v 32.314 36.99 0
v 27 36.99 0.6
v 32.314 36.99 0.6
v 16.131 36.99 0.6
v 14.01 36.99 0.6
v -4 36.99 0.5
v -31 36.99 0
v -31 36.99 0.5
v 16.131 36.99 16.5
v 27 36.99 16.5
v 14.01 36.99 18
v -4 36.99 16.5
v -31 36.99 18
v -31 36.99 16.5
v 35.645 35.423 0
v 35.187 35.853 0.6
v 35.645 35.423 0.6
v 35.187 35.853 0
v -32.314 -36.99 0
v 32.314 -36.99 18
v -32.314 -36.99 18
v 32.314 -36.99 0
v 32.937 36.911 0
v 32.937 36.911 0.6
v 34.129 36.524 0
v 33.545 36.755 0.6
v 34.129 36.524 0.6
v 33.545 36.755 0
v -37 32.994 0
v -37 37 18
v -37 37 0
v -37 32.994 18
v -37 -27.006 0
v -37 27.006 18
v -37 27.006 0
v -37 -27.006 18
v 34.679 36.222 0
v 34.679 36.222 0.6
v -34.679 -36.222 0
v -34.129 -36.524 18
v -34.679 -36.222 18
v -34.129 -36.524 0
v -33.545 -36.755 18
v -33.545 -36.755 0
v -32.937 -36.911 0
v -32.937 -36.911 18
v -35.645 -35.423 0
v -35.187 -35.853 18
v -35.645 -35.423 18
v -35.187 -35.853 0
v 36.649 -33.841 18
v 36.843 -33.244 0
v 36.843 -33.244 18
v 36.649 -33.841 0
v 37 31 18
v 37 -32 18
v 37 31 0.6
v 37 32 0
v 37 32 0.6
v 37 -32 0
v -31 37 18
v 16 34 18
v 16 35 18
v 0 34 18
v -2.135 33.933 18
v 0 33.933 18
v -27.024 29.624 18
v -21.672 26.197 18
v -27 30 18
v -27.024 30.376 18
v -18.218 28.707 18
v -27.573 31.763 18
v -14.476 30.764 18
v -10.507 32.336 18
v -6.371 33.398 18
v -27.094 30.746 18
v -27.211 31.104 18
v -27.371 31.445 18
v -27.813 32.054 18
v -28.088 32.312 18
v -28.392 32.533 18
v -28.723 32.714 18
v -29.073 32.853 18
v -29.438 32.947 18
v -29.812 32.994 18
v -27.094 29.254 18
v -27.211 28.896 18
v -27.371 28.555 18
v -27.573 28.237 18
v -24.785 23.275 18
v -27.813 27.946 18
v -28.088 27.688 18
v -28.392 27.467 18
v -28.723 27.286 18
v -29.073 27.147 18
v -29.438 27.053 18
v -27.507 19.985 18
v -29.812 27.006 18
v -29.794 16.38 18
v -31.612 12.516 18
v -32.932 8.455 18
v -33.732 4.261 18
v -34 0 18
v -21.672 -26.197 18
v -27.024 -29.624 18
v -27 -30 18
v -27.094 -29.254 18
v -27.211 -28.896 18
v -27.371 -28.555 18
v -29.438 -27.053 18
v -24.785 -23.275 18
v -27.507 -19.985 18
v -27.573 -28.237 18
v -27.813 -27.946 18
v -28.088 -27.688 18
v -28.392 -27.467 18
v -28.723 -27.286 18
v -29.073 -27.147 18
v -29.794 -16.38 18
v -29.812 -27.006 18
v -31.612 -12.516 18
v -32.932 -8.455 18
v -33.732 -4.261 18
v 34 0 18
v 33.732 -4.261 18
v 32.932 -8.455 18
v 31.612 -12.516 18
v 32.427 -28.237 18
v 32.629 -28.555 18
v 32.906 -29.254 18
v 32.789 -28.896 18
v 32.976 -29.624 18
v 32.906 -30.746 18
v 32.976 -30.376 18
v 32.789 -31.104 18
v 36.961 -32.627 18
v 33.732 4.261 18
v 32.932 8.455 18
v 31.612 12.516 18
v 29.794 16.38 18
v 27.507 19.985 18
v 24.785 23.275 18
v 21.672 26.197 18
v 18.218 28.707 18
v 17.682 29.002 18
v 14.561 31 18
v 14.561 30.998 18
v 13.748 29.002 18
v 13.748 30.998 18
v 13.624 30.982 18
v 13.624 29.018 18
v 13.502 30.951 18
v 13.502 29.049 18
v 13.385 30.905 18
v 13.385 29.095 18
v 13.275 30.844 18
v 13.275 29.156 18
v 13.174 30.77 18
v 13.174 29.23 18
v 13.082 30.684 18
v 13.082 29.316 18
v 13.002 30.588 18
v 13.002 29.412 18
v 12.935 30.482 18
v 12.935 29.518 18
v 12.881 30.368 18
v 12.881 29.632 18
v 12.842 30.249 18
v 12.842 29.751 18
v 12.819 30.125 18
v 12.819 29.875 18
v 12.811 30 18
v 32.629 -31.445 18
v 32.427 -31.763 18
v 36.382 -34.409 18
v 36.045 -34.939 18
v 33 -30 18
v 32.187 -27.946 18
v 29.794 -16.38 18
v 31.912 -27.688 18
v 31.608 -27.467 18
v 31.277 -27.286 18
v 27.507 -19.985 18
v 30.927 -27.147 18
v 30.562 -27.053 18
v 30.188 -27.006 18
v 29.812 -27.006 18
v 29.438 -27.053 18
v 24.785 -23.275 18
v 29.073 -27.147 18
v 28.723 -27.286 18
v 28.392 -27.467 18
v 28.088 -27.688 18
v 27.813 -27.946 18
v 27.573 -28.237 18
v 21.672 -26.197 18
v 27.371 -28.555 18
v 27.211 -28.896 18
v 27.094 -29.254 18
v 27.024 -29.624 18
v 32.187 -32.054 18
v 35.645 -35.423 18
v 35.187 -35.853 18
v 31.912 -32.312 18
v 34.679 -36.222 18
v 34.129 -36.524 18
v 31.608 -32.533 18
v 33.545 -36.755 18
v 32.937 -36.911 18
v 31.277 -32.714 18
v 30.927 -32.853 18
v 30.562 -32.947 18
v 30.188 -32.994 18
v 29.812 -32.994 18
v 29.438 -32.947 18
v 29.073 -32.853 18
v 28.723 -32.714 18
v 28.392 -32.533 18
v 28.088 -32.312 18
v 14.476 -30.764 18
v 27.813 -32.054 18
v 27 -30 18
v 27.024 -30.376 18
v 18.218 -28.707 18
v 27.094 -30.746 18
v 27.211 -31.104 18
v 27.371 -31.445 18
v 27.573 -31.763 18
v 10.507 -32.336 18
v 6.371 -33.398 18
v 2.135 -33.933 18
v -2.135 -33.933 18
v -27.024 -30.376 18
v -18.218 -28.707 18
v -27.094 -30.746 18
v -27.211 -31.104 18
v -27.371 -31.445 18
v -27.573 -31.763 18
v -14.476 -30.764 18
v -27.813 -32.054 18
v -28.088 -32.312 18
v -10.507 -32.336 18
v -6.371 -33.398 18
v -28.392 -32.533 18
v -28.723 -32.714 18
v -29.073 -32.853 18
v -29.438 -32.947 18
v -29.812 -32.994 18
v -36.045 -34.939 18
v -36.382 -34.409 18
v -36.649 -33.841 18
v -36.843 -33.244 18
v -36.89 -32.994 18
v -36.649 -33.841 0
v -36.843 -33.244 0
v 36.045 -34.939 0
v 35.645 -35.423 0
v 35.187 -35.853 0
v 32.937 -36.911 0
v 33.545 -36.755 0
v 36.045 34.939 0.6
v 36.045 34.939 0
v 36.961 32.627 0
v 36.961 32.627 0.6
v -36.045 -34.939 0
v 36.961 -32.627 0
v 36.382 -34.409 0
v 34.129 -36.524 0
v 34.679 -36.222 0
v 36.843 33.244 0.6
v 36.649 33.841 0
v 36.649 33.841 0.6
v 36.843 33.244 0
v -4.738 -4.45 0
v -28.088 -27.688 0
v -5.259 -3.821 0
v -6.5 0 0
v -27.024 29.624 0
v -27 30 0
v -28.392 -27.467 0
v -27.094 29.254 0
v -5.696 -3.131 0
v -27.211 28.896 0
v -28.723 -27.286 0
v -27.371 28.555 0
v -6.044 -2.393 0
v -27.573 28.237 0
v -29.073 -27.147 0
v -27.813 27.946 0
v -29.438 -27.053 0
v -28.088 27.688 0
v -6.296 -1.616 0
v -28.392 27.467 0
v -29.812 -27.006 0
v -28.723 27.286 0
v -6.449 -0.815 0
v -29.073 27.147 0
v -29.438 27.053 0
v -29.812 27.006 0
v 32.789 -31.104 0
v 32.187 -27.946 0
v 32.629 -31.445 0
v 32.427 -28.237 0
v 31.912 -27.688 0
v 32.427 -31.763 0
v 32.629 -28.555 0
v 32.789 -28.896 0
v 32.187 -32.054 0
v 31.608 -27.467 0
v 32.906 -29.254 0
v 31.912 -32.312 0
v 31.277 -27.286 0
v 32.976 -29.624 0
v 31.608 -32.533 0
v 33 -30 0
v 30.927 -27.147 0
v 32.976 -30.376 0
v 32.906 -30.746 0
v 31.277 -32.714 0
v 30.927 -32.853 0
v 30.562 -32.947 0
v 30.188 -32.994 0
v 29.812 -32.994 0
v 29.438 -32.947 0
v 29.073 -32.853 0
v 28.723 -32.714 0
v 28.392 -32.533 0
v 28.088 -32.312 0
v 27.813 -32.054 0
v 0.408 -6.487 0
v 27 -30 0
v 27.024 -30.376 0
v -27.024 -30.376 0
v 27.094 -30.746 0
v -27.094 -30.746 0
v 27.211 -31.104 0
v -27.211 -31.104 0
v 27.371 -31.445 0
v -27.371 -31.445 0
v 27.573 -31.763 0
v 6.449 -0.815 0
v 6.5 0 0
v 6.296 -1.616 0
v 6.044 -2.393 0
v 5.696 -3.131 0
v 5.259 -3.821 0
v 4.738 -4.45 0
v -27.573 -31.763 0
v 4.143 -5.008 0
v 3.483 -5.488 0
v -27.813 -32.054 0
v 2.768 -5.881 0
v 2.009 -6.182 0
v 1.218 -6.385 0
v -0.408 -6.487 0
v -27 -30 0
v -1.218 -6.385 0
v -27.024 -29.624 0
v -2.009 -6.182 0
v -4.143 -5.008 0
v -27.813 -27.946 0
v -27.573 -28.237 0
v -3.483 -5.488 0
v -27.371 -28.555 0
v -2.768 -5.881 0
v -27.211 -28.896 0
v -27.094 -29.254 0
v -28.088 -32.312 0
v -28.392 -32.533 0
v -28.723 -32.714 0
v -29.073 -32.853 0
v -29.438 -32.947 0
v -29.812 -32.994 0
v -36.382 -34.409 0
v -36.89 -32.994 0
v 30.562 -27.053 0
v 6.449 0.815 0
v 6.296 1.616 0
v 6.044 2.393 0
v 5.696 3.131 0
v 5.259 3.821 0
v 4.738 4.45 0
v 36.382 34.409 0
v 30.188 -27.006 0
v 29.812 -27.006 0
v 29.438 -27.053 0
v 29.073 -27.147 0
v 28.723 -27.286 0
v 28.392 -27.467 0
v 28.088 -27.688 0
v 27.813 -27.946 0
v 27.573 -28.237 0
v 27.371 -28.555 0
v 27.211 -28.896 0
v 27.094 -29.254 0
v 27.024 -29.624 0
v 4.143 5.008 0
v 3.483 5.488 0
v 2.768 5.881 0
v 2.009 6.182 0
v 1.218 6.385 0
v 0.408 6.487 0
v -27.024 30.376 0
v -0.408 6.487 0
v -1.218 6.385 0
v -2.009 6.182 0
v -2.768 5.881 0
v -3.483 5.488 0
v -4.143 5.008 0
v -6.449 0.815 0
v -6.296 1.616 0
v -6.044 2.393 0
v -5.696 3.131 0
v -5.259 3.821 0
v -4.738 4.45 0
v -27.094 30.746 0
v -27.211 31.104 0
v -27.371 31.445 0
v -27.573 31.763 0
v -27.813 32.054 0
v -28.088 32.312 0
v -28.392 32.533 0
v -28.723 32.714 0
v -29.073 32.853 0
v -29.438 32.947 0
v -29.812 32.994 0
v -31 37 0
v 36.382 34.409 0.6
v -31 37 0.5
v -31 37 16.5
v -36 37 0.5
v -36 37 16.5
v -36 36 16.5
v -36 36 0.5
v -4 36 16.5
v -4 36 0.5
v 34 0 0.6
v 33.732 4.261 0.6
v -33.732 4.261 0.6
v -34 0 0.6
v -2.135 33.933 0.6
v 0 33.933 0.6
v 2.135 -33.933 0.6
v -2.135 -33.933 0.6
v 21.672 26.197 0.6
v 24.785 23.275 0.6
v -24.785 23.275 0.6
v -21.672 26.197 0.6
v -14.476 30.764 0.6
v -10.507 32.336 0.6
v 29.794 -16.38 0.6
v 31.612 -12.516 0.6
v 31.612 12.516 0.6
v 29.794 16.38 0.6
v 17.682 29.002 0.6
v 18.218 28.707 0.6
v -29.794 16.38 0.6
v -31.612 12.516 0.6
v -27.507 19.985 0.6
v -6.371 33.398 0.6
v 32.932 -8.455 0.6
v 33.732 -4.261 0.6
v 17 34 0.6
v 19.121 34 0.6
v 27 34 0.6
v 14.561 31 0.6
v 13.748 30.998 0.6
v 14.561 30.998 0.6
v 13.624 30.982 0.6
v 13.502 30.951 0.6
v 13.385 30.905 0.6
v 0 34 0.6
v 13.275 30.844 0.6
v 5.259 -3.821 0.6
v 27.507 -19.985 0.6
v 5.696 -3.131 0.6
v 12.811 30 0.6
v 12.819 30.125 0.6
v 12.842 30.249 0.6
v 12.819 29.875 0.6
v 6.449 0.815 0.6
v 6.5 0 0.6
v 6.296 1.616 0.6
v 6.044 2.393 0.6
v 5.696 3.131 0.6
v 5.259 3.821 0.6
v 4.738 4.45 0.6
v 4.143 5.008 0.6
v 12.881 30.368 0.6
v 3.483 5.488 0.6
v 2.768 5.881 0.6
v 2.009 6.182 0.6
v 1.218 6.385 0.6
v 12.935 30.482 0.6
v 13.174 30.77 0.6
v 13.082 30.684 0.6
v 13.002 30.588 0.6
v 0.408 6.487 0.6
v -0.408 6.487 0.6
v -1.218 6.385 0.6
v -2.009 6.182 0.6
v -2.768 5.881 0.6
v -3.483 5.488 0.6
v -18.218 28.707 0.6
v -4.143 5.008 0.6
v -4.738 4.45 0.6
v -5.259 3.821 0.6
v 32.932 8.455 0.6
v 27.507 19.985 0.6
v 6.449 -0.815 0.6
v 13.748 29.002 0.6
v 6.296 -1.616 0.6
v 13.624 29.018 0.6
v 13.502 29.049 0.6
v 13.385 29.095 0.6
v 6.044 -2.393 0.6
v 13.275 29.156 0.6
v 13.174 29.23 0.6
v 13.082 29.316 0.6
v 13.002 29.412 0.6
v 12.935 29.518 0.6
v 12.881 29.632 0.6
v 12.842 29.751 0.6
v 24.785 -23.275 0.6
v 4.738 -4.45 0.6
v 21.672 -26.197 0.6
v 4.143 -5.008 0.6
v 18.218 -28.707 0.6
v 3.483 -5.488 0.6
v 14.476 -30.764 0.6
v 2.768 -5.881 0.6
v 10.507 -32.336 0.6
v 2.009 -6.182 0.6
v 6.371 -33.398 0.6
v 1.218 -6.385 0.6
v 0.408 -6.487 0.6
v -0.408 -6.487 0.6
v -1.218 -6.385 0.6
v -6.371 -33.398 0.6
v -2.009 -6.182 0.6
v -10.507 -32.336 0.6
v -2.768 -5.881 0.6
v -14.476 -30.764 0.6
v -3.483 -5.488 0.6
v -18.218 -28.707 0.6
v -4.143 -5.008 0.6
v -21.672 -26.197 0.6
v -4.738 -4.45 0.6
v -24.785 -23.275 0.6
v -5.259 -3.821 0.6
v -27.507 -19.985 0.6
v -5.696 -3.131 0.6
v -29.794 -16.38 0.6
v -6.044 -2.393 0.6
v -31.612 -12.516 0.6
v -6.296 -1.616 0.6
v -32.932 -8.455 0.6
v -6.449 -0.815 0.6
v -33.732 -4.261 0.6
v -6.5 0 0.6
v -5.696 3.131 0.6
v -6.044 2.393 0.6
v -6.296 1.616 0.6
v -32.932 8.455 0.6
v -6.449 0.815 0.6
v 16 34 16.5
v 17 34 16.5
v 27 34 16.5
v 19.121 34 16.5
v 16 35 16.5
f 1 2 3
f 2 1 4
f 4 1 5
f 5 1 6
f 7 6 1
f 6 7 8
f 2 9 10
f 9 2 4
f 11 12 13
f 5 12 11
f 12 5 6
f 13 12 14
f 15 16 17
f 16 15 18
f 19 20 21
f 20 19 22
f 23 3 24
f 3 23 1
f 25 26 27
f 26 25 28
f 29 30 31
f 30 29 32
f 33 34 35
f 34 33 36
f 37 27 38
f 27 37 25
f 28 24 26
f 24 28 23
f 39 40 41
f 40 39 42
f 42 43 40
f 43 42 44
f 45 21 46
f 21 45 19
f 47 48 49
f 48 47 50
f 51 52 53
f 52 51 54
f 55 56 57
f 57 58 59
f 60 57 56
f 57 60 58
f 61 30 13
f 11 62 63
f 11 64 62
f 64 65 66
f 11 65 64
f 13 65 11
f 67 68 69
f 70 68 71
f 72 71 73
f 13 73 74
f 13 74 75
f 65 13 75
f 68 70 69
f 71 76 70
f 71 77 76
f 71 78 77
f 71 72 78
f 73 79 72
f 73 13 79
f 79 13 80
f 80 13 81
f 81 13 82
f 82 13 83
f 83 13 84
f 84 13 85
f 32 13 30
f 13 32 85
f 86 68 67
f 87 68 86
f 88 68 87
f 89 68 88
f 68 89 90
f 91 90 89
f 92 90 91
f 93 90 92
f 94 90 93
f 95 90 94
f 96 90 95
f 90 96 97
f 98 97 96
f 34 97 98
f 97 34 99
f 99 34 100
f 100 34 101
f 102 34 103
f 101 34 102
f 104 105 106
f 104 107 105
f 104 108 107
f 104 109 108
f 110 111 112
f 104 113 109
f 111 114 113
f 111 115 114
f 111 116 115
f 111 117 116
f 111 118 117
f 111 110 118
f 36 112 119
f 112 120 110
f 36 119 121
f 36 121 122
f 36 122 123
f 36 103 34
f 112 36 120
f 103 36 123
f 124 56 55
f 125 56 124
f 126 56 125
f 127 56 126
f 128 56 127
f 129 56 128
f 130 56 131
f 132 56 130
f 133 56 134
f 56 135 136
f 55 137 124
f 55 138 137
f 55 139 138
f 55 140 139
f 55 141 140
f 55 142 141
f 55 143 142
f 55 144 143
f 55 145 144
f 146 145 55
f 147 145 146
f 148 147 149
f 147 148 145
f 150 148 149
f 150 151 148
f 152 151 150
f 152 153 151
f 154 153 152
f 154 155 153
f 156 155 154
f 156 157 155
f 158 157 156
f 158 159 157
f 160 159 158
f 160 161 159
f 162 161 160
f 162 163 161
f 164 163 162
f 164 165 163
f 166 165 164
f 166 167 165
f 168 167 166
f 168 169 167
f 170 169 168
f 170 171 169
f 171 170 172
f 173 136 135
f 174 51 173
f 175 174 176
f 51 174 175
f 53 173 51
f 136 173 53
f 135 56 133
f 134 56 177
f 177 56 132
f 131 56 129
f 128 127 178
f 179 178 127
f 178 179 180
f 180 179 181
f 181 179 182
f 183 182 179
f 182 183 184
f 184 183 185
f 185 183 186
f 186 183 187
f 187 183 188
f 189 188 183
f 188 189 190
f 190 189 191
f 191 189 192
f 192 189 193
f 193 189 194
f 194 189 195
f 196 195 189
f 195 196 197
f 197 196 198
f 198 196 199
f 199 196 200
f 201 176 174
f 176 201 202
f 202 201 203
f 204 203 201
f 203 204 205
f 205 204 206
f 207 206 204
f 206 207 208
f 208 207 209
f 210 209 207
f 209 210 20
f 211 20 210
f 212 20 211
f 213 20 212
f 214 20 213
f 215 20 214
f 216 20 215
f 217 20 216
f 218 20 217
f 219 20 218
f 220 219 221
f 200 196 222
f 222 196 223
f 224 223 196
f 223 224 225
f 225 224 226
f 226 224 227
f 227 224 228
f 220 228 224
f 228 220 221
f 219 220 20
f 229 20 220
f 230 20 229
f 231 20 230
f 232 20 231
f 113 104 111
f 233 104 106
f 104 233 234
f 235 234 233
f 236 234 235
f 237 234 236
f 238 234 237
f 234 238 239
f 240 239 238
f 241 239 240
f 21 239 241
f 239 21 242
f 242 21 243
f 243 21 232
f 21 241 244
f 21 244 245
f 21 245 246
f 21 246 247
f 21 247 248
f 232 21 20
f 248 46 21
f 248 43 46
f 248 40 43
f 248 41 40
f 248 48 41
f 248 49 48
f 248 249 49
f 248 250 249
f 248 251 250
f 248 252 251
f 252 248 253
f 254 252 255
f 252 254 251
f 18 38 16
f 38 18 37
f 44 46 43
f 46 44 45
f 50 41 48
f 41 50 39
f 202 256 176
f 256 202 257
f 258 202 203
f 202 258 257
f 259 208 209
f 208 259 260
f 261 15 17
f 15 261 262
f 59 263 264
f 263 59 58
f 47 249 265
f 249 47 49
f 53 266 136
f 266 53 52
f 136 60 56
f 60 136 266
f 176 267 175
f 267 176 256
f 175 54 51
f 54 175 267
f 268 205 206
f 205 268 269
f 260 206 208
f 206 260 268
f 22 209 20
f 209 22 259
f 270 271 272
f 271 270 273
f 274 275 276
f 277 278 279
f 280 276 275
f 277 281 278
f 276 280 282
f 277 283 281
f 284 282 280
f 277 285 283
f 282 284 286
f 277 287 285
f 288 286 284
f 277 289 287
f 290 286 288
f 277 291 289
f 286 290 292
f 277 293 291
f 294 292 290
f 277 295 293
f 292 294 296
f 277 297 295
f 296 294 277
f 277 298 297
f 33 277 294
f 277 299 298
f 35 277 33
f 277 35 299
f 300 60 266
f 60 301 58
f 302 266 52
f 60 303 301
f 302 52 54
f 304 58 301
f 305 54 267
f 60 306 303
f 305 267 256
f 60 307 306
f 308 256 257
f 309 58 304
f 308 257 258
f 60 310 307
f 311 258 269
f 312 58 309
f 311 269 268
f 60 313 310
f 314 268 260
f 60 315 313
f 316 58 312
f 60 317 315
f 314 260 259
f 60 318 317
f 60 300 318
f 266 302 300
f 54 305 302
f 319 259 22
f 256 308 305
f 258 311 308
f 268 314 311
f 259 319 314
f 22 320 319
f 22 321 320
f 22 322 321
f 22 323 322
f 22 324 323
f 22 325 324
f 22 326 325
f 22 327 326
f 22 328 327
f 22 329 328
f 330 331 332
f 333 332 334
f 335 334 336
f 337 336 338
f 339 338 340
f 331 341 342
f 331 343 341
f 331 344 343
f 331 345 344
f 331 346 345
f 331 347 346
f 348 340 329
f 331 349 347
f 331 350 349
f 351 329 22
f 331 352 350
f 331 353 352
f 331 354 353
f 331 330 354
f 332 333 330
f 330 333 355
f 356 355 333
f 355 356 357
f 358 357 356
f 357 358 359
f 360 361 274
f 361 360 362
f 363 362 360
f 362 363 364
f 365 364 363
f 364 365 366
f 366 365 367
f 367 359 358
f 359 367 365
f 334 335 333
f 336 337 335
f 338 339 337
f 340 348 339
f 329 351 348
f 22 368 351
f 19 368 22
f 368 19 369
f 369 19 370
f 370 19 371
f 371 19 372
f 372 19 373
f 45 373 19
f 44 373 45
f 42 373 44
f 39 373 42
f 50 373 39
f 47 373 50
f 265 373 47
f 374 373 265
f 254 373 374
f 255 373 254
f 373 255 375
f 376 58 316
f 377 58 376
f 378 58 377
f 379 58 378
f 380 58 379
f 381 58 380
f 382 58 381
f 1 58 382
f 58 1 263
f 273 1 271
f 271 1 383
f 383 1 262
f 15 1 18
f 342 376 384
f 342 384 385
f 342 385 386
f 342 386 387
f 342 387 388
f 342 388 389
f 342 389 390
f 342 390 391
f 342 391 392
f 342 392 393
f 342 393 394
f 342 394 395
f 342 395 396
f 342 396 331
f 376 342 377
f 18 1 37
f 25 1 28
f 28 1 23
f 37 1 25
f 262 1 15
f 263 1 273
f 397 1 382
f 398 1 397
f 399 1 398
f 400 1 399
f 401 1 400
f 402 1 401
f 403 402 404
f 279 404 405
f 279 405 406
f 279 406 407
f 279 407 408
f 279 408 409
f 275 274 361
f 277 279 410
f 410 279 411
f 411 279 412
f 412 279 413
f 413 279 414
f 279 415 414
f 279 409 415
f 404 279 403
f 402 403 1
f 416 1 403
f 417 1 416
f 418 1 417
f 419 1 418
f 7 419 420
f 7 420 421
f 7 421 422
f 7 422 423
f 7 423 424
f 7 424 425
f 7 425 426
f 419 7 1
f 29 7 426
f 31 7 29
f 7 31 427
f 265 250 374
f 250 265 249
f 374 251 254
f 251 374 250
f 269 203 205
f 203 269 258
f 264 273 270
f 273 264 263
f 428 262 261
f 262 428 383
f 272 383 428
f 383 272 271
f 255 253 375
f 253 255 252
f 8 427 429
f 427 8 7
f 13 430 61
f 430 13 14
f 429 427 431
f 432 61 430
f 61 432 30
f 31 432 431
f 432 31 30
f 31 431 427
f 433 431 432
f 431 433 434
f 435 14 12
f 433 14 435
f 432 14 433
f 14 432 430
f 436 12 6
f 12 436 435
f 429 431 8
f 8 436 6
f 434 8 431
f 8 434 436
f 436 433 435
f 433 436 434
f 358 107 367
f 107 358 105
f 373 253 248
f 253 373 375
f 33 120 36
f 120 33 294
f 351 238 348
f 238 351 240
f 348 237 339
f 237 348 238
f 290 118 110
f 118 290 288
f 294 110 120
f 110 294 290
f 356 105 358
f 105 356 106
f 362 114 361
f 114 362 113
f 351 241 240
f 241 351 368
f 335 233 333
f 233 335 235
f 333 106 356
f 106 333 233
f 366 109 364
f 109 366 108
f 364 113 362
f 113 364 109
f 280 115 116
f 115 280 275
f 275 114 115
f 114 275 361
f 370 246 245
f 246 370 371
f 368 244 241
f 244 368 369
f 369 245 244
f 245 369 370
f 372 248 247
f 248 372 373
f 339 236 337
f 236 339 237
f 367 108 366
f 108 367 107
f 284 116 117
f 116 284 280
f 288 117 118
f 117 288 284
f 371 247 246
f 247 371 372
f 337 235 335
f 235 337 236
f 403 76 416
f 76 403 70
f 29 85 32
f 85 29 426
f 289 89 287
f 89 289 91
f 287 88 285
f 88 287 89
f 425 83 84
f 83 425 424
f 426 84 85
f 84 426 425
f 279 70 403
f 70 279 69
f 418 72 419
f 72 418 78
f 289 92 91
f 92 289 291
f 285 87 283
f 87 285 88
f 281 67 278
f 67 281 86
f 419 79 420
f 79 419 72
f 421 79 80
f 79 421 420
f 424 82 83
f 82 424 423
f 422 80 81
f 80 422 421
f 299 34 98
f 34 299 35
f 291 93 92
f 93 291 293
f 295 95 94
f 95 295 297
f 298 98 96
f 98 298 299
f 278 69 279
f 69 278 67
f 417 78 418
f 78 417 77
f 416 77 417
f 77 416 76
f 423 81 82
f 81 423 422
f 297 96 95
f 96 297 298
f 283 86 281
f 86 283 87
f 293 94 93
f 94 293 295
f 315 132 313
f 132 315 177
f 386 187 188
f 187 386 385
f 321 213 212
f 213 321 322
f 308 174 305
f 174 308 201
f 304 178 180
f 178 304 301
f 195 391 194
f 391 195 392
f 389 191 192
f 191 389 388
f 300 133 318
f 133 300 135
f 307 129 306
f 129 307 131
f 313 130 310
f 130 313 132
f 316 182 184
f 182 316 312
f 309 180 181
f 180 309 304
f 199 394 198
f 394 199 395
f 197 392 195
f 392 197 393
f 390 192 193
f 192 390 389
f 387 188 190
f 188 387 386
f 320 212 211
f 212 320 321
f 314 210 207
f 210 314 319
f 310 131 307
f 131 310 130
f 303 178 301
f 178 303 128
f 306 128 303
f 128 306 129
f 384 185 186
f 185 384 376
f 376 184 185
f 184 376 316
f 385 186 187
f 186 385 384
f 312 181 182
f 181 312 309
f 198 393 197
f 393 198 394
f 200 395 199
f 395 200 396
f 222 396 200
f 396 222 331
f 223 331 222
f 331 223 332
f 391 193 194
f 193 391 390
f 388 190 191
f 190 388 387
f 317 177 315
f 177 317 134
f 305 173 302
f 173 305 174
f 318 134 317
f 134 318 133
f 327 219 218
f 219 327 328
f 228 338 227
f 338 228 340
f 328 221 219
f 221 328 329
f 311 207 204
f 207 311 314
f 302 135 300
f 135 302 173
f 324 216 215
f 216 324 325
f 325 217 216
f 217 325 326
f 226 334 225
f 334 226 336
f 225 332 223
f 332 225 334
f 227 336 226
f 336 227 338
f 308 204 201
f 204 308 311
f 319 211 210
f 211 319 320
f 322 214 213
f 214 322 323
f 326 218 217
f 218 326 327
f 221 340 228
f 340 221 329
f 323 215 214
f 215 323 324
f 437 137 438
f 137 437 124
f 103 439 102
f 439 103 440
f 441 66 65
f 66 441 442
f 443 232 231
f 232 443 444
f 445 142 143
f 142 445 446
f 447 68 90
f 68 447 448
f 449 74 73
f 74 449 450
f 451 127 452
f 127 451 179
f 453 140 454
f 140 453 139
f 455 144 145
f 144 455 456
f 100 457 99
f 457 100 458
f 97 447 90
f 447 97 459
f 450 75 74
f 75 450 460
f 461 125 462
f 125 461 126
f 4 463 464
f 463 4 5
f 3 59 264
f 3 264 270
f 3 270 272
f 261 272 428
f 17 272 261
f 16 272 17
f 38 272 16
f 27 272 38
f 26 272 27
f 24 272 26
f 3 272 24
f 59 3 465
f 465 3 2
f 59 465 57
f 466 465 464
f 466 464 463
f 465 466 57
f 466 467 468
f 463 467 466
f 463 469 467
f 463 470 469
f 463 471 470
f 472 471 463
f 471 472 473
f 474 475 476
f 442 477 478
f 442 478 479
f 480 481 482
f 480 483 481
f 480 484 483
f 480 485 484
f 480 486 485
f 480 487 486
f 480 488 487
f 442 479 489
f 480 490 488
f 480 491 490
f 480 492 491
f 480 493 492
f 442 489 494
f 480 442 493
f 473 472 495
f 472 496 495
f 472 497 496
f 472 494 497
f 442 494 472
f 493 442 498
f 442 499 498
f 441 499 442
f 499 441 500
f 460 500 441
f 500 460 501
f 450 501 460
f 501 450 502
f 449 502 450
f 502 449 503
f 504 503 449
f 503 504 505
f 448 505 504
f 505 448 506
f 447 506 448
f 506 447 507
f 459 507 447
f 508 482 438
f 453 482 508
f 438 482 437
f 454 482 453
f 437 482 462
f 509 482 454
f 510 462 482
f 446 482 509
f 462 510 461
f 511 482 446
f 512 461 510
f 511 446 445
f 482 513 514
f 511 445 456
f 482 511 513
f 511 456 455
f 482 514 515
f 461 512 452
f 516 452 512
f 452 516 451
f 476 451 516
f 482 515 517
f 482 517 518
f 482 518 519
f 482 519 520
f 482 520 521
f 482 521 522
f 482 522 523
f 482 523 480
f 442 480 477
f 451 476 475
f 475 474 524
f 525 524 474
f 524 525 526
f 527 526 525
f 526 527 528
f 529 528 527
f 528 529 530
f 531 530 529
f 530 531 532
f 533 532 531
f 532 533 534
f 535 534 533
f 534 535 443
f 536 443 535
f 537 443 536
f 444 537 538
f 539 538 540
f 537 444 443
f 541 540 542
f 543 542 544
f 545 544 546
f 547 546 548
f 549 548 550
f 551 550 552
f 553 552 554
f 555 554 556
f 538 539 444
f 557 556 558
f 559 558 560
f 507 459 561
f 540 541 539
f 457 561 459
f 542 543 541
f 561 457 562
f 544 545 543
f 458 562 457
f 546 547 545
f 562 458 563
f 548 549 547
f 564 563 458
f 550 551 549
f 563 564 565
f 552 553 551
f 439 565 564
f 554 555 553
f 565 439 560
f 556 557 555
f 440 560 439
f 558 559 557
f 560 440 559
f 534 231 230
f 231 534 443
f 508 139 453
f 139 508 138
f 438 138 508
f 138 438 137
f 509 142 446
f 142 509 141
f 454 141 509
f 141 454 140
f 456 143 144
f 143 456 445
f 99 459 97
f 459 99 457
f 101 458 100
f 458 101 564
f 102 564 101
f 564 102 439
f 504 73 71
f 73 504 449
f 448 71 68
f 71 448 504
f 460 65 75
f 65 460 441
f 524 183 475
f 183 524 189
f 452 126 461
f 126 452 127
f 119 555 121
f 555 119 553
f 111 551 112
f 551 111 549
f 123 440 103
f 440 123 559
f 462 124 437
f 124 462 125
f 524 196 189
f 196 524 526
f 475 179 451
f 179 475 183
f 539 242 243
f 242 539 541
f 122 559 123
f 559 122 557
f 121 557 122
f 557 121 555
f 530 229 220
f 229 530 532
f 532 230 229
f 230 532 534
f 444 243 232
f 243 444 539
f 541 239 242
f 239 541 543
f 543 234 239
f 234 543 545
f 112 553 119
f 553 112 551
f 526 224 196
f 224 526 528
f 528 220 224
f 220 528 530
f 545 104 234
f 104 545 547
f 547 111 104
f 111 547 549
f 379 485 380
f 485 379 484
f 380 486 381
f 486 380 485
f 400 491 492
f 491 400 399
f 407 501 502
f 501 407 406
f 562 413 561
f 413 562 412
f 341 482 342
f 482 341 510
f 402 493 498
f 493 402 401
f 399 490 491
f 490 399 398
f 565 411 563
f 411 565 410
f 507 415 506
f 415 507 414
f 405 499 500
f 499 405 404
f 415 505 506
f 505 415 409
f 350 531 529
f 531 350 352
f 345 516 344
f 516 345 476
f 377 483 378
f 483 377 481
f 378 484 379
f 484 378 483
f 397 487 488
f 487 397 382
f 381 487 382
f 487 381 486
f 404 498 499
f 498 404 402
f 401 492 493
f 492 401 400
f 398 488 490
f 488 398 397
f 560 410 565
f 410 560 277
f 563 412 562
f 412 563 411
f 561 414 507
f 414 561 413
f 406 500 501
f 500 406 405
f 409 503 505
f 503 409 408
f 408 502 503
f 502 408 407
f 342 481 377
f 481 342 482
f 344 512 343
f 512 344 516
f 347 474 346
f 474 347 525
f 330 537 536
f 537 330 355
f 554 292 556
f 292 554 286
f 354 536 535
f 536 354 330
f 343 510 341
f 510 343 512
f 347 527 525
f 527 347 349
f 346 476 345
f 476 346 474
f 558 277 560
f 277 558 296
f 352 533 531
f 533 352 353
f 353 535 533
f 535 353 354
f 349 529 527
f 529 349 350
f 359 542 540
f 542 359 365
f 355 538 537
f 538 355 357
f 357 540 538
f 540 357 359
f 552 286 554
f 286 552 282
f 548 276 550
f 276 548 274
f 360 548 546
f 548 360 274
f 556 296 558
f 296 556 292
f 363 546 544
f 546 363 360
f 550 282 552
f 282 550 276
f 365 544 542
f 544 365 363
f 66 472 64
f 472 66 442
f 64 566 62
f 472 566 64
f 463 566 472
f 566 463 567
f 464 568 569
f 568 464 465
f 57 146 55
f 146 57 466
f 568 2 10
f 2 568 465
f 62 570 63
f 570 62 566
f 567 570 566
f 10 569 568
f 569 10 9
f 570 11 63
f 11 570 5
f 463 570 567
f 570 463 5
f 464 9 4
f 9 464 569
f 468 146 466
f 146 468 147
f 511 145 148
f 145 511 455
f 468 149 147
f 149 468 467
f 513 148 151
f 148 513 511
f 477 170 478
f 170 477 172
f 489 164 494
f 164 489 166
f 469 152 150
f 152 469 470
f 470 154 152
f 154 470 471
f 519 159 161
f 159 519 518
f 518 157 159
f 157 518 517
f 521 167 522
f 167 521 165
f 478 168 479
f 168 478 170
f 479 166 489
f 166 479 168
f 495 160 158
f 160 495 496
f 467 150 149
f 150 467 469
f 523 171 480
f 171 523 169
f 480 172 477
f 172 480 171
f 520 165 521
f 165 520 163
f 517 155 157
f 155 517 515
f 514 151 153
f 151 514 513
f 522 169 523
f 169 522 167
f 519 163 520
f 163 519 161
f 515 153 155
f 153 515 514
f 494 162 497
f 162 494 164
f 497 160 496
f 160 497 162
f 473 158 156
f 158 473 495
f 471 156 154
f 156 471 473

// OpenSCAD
$fn = 50;


union() {
	difference() {
		union() {
			translate(v = [0, 0, 0]) {
				rotate(a = [0, 0, 0]) {
					hull() {
						translate(v = [-32.0000000000, 32.0000000000, 0]) {
							rotate(a = [0, 0, 0]) {
								translate(v = [0, 0, 0]) {
									rotate(a = [0, 0, 0]) {
										cylinder(h = 18, r = 5);
									}
								}
							}
						}
						translate(v = [32.0000000000, 32.0000000000, 0]) {
							rotate(a = [0, 0, 0]) {
								translate(v = [0, 0, 0]) {
									rotate(a = [0, 0, 0]) {
										cylinder(h = 18, r = 5);
									}
								}
							}
						}
						translate(v = [-32.0000000000, -32.0000000000, 0]) {
							rotate(a = [0, 0, 0]) {
								translate(v = [0, 0, 0]) {
									rotate(a = [0, 0, 0]) {
										cylinder(h = 18, r = 5);
									}
								}
							}
						}
						translate(v = [32.0000000000, -32.0000000000, 0]) {
							rotate(a = [0, 0, 0]) {
								translate(v = [0, 0, 0]) {
									rotate(a = [0, 0, 0]) {
										cylinder(h = 18, r = 5);
									}
								}
							}
						}
					}
				}
			}
			translate(v = [-37.0000000000, 31.0000000000, 0]) {
				rotate(a = [0, 0, 0]) {
					cube(size = [6, 6, 18]);
				}
			}
		}
		union() {
			#translate(v = [-36.0000000000, 36.0000000000, 0.5000000000]) {
				rotate(a = [0, 0, 0]) {
					cube(size = [32, 1, 16]);
				}
			}
			translate(v = [-37.5000000000, -30.0000000000, -125]) {
				rotate(a = [0, 0, 0]) {
					hull() {
						translate(v = [7.5000000000, 0, 0]) {
							rotate(a = [0, 0, 0]) {
								translate(v = [0, 0, 0]) {
									rotate(a = [0, 0, 0]) {
										cylinder(h = 250, r = 3.0000000000);
									}
								}
							}
						}
						translate(v = [-7.5000000000, 0, 0]) {
							rotate(a = [0, 0, 0]) {
								translate(v = [0, 0, 0]) {
									rotate(a = [0, 0, 0]) {
										cylinder(h = 250, r = 3.0000000000);
									}
								}
							}
						}
					}
				}
			}
			translate(v = [-37.5000000000, 30.0000000000, -125]) {
				rotate(a = [0, 0, 0]) {
					hull() {
						translate(v = [7.5000000000, 0, 0]) {
							rotate(a = [0, 0, 0]) {
								translate(v = [0, 0, 0]) {
									rotate(a = [0, 0, 0]) {
										cylinder(h = 250, r = 3.0000000000);
									}
								}
							}
						}
						translate(v = [-7.5000000000, 0, 0]) {
							rotate(a = [0, 0, 0]) {
								translate(v = [0, 0, 0]) {
									rotate(a = [0, 0, 0]) {
										cylinder(h = 250, r = 3.0000000000);
									}
								}
							}
						}
					}
				}
			}
			translate(v = [30.0000000000, -30.0000000000, -125.0000000000]) {
				rotate(a = [0, 0, 0]) {
					cylinder(h = 250, r = 3.0000000000);
				}
			}
			translate(v = [0, 0, 0.6000000000]) {
				rotate(a = [0, 0, 0]) {
					cylinder(h = 20.4000000000, r = 34.0000000000);
				}
			}
			translate(v = [0, 0, -9.0000000000]) {
				rotate(a = [0, 0, 0]) {
					cylinder(h = 18, r = 6.5000000000);
				}
			}
			translate(v = [0.0000000000, 31.0000000000, 0.6000000000]) {
				rotate(a = [0, 0, 0]) {
					cube(size = [37.0000000000, 3, 20.4000000000]);
				}
			}
			translate(v = [27.0000000000, 31.0000000000, 0.6000000000]) {
				rotate(a = [0, 0, 0]) {
					cube(size = [10, 6, 20.4000000000]);
				}
			}
			translate(v = [16.0000000000, 31.0000000000, 16.5000000000]) {
				rotate(a = [0, 0, 0]) {
					cube(size = [21, 6, 1.5000000000]);
				}
			}
			translate(v = [13.2500000000, 37.7500000000, 0.6000000000]) {
				rotate(a = [0, 0, -45]) {
					cube(size = [7.5000000000, 1.5000000000, 20.4000000000]);
				}
			}
			translate(v = [7.0610000000, 29.0000000000, 0.6000000000]) {
				rotate(a = [0, 0, 0]) {
					cube(size = [7.5000000000, 2, 17.4000000000]);
				}
			}
		}
	}
	union() {
		translate(v = [16.3110000000, 30.0000000000, 0]) {
			rotate(a = [0, 0, 0]) {
				hull() {
					translate(v = [2.5000000000, 0, 0]) {
						rotate(a = [0, 0, 0]) {
							#translate(v = [0, 0, 0]) {
								rotate(a = [0, 0, 0]) {
									cylinder(h = 18, r = 1.0000000000);
								}
							}
						}
					}
					translate(v = [-2.5000000000, 0, 0]) {
						rotate(a = [0, 0, 0]) {
							#translate(v = [0, 0, 0]) {
								rotate(a = [0, 0, 0]) {
									cylinder(h = 18, r = 1.0000000000);
								}
							}
						}
					}
				}
			}
		}
	}
}
